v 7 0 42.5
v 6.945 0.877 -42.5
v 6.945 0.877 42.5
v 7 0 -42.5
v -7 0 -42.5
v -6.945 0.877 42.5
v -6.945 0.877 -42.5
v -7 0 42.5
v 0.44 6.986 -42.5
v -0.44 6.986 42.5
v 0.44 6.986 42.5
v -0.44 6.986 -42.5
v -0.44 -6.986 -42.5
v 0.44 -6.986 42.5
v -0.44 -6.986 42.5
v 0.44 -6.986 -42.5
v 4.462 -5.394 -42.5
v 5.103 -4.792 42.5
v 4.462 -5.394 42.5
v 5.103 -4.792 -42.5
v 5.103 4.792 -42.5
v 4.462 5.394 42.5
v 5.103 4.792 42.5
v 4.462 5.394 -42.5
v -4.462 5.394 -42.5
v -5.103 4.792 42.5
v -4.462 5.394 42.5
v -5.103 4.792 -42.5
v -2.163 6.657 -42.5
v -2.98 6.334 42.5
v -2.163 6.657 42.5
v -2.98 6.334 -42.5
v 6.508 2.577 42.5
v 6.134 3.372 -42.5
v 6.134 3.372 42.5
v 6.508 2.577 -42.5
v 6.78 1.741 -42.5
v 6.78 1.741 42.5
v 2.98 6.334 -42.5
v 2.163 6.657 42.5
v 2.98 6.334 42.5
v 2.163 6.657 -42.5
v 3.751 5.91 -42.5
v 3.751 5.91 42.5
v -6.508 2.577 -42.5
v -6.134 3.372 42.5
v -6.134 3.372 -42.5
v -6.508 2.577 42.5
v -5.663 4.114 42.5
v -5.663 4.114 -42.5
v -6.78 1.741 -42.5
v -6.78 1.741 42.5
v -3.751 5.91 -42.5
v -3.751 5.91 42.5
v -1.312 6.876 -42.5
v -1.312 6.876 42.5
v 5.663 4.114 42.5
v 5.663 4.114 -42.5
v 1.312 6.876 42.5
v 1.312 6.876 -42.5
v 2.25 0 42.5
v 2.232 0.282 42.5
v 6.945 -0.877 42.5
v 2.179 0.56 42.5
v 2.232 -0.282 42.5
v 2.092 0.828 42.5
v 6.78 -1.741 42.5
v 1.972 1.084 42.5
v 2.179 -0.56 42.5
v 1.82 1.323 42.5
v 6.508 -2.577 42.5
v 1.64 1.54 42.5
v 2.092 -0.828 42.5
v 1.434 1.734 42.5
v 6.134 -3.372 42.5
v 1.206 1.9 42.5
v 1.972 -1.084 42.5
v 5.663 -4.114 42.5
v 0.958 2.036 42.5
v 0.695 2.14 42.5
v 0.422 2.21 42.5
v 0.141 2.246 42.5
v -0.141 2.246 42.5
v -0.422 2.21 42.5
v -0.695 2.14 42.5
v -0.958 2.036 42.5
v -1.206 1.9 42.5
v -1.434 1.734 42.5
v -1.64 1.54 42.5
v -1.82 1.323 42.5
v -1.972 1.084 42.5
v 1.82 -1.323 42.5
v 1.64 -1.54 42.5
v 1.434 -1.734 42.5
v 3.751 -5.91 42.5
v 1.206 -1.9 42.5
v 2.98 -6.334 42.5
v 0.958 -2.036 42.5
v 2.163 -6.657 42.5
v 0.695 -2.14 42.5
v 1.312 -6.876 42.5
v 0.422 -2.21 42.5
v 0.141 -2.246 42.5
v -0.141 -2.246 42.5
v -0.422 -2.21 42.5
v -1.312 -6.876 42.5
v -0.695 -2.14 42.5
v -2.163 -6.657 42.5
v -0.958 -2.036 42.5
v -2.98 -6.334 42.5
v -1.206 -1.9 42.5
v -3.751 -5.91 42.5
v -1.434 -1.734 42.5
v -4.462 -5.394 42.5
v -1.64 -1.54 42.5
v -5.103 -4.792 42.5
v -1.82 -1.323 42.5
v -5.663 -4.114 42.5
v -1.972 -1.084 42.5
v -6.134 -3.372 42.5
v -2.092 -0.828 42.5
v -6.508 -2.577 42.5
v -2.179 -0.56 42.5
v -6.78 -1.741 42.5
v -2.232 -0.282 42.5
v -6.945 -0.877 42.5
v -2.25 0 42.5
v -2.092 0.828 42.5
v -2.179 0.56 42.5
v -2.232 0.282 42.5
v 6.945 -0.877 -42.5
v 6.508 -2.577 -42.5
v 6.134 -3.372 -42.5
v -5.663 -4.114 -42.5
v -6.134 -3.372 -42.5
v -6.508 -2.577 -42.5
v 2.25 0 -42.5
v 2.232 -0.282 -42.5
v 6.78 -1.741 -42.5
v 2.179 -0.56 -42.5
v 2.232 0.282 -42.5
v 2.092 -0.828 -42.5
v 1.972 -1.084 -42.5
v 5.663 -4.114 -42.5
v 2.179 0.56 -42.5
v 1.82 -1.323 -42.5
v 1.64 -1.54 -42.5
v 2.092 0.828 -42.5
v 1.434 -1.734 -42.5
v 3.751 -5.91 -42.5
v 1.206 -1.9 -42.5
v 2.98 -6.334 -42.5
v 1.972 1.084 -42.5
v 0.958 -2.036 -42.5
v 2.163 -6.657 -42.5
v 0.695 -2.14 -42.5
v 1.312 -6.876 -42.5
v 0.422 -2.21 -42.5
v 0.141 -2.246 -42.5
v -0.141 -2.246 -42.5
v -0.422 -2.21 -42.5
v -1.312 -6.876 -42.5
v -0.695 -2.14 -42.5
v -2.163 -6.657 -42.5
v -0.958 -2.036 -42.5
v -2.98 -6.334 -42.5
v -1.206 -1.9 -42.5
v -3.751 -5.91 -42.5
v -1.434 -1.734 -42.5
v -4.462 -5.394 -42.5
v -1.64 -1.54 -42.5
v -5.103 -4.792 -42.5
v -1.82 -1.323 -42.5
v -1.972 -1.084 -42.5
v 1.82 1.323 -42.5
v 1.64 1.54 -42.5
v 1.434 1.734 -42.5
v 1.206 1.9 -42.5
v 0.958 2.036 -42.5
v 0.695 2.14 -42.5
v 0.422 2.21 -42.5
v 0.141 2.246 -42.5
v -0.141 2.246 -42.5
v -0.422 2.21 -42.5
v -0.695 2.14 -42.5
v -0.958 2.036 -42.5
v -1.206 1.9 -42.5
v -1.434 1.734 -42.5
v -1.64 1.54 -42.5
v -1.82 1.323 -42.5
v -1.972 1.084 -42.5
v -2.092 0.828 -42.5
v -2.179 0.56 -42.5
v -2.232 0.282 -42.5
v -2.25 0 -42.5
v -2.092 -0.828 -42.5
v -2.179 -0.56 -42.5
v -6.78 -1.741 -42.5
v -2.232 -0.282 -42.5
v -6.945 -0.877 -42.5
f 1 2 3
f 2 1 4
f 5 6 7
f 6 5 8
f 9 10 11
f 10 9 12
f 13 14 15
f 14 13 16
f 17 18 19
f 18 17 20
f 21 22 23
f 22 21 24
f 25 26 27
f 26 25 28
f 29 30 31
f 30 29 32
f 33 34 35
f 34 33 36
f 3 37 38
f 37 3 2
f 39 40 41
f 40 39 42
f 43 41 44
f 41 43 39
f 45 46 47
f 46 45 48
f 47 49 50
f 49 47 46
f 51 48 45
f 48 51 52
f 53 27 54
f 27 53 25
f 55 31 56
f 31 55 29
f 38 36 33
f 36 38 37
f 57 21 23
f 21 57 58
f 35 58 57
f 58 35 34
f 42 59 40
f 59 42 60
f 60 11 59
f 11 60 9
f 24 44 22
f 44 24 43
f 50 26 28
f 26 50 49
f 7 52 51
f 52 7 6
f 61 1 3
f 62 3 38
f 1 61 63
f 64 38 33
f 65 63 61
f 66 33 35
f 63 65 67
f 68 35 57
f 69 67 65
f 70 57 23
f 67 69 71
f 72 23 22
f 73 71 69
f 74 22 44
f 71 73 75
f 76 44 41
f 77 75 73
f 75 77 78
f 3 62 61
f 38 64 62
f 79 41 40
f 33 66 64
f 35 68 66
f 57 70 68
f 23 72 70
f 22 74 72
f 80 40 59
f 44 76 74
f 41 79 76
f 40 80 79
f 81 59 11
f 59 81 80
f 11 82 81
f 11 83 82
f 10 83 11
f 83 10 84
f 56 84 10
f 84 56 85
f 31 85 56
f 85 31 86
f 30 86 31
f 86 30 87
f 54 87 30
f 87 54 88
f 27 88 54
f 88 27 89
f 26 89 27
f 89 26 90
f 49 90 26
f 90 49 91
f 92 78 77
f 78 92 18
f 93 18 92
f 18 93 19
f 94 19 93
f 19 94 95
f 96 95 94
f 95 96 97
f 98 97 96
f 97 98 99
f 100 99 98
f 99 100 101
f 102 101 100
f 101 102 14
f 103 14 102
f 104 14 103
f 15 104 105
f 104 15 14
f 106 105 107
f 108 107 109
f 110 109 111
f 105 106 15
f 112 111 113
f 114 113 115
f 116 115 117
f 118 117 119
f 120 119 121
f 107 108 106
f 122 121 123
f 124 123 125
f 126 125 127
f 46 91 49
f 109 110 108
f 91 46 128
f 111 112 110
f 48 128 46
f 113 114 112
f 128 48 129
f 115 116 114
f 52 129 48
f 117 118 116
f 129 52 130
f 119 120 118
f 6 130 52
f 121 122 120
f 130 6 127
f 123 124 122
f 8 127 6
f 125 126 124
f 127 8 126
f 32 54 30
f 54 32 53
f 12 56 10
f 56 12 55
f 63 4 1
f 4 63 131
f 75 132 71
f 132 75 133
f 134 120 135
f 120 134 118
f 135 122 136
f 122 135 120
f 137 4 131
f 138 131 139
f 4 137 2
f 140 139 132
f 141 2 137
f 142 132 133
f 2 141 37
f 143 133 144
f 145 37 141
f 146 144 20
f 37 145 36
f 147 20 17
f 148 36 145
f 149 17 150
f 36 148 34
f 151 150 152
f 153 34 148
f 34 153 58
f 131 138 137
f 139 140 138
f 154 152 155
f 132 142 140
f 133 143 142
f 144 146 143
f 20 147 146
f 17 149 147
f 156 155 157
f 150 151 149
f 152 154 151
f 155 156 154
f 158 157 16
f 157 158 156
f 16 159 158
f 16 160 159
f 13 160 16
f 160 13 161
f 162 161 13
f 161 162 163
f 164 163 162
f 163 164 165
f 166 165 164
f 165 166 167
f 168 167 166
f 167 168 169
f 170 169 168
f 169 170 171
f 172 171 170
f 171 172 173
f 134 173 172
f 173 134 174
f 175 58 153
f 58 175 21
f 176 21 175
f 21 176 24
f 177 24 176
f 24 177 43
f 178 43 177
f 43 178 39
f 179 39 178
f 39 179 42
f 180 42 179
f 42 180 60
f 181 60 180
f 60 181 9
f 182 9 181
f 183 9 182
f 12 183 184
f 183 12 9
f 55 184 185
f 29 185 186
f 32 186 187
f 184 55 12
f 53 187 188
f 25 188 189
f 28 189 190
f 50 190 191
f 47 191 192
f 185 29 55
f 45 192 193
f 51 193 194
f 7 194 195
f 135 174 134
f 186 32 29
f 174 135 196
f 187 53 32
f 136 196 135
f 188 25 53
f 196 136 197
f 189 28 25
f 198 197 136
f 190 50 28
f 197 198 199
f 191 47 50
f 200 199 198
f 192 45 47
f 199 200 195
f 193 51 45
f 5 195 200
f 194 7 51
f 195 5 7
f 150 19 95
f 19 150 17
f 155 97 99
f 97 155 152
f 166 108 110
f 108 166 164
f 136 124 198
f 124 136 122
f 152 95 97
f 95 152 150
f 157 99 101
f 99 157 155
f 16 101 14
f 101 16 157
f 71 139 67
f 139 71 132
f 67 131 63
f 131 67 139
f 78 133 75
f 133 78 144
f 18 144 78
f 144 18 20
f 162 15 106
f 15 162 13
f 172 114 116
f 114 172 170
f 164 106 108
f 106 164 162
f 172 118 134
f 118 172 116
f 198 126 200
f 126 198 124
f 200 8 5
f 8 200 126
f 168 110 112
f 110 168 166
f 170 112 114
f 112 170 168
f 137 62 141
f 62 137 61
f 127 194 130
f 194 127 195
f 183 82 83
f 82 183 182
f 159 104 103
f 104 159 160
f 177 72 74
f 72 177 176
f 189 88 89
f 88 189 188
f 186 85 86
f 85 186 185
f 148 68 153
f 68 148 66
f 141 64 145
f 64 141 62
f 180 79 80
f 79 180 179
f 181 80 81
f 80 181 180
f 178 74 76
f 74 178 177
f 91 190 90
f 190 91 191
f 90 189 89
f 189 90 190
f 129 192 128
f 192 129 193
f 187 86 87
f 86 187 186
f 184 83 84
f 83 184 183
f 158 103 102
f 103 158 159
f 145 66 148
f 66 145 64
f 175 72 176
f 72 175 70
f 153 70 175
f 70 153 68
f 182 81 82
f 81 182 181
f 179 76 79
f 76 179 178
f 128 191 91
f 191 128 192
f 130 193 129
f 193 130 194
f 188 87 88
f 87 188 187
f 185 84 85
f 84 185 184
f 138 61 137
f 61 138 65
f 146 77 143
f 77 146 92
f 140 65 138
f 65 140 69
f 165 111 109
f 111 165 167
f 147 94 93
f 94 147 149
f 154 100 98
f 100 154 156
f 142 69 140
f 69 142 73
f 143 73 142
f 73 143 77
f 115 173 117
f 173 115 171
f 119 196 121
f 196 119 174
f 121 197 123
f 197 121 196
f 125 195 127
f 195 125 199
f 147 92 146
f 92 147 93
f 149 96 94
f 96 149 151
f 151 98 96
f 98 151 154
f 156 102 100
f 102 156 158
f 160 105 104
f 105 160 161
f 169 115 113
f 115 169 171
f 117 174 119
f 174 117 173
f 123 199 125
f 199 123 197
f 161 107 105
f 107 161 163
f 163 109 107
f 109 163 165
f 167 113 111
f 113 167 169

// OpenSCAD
$fn = 50;


difference() {
	union() {
		translate(v = [0, 0, -42.5000000000]) {
			cylinder(h = 85, r = 7.0000000000);
		}
	}
	union() {
		translate(v = [0, 0, -100.0000000000]) {
			cylinder(h = 200, r = 2.2500000000);
		}
	}
}
